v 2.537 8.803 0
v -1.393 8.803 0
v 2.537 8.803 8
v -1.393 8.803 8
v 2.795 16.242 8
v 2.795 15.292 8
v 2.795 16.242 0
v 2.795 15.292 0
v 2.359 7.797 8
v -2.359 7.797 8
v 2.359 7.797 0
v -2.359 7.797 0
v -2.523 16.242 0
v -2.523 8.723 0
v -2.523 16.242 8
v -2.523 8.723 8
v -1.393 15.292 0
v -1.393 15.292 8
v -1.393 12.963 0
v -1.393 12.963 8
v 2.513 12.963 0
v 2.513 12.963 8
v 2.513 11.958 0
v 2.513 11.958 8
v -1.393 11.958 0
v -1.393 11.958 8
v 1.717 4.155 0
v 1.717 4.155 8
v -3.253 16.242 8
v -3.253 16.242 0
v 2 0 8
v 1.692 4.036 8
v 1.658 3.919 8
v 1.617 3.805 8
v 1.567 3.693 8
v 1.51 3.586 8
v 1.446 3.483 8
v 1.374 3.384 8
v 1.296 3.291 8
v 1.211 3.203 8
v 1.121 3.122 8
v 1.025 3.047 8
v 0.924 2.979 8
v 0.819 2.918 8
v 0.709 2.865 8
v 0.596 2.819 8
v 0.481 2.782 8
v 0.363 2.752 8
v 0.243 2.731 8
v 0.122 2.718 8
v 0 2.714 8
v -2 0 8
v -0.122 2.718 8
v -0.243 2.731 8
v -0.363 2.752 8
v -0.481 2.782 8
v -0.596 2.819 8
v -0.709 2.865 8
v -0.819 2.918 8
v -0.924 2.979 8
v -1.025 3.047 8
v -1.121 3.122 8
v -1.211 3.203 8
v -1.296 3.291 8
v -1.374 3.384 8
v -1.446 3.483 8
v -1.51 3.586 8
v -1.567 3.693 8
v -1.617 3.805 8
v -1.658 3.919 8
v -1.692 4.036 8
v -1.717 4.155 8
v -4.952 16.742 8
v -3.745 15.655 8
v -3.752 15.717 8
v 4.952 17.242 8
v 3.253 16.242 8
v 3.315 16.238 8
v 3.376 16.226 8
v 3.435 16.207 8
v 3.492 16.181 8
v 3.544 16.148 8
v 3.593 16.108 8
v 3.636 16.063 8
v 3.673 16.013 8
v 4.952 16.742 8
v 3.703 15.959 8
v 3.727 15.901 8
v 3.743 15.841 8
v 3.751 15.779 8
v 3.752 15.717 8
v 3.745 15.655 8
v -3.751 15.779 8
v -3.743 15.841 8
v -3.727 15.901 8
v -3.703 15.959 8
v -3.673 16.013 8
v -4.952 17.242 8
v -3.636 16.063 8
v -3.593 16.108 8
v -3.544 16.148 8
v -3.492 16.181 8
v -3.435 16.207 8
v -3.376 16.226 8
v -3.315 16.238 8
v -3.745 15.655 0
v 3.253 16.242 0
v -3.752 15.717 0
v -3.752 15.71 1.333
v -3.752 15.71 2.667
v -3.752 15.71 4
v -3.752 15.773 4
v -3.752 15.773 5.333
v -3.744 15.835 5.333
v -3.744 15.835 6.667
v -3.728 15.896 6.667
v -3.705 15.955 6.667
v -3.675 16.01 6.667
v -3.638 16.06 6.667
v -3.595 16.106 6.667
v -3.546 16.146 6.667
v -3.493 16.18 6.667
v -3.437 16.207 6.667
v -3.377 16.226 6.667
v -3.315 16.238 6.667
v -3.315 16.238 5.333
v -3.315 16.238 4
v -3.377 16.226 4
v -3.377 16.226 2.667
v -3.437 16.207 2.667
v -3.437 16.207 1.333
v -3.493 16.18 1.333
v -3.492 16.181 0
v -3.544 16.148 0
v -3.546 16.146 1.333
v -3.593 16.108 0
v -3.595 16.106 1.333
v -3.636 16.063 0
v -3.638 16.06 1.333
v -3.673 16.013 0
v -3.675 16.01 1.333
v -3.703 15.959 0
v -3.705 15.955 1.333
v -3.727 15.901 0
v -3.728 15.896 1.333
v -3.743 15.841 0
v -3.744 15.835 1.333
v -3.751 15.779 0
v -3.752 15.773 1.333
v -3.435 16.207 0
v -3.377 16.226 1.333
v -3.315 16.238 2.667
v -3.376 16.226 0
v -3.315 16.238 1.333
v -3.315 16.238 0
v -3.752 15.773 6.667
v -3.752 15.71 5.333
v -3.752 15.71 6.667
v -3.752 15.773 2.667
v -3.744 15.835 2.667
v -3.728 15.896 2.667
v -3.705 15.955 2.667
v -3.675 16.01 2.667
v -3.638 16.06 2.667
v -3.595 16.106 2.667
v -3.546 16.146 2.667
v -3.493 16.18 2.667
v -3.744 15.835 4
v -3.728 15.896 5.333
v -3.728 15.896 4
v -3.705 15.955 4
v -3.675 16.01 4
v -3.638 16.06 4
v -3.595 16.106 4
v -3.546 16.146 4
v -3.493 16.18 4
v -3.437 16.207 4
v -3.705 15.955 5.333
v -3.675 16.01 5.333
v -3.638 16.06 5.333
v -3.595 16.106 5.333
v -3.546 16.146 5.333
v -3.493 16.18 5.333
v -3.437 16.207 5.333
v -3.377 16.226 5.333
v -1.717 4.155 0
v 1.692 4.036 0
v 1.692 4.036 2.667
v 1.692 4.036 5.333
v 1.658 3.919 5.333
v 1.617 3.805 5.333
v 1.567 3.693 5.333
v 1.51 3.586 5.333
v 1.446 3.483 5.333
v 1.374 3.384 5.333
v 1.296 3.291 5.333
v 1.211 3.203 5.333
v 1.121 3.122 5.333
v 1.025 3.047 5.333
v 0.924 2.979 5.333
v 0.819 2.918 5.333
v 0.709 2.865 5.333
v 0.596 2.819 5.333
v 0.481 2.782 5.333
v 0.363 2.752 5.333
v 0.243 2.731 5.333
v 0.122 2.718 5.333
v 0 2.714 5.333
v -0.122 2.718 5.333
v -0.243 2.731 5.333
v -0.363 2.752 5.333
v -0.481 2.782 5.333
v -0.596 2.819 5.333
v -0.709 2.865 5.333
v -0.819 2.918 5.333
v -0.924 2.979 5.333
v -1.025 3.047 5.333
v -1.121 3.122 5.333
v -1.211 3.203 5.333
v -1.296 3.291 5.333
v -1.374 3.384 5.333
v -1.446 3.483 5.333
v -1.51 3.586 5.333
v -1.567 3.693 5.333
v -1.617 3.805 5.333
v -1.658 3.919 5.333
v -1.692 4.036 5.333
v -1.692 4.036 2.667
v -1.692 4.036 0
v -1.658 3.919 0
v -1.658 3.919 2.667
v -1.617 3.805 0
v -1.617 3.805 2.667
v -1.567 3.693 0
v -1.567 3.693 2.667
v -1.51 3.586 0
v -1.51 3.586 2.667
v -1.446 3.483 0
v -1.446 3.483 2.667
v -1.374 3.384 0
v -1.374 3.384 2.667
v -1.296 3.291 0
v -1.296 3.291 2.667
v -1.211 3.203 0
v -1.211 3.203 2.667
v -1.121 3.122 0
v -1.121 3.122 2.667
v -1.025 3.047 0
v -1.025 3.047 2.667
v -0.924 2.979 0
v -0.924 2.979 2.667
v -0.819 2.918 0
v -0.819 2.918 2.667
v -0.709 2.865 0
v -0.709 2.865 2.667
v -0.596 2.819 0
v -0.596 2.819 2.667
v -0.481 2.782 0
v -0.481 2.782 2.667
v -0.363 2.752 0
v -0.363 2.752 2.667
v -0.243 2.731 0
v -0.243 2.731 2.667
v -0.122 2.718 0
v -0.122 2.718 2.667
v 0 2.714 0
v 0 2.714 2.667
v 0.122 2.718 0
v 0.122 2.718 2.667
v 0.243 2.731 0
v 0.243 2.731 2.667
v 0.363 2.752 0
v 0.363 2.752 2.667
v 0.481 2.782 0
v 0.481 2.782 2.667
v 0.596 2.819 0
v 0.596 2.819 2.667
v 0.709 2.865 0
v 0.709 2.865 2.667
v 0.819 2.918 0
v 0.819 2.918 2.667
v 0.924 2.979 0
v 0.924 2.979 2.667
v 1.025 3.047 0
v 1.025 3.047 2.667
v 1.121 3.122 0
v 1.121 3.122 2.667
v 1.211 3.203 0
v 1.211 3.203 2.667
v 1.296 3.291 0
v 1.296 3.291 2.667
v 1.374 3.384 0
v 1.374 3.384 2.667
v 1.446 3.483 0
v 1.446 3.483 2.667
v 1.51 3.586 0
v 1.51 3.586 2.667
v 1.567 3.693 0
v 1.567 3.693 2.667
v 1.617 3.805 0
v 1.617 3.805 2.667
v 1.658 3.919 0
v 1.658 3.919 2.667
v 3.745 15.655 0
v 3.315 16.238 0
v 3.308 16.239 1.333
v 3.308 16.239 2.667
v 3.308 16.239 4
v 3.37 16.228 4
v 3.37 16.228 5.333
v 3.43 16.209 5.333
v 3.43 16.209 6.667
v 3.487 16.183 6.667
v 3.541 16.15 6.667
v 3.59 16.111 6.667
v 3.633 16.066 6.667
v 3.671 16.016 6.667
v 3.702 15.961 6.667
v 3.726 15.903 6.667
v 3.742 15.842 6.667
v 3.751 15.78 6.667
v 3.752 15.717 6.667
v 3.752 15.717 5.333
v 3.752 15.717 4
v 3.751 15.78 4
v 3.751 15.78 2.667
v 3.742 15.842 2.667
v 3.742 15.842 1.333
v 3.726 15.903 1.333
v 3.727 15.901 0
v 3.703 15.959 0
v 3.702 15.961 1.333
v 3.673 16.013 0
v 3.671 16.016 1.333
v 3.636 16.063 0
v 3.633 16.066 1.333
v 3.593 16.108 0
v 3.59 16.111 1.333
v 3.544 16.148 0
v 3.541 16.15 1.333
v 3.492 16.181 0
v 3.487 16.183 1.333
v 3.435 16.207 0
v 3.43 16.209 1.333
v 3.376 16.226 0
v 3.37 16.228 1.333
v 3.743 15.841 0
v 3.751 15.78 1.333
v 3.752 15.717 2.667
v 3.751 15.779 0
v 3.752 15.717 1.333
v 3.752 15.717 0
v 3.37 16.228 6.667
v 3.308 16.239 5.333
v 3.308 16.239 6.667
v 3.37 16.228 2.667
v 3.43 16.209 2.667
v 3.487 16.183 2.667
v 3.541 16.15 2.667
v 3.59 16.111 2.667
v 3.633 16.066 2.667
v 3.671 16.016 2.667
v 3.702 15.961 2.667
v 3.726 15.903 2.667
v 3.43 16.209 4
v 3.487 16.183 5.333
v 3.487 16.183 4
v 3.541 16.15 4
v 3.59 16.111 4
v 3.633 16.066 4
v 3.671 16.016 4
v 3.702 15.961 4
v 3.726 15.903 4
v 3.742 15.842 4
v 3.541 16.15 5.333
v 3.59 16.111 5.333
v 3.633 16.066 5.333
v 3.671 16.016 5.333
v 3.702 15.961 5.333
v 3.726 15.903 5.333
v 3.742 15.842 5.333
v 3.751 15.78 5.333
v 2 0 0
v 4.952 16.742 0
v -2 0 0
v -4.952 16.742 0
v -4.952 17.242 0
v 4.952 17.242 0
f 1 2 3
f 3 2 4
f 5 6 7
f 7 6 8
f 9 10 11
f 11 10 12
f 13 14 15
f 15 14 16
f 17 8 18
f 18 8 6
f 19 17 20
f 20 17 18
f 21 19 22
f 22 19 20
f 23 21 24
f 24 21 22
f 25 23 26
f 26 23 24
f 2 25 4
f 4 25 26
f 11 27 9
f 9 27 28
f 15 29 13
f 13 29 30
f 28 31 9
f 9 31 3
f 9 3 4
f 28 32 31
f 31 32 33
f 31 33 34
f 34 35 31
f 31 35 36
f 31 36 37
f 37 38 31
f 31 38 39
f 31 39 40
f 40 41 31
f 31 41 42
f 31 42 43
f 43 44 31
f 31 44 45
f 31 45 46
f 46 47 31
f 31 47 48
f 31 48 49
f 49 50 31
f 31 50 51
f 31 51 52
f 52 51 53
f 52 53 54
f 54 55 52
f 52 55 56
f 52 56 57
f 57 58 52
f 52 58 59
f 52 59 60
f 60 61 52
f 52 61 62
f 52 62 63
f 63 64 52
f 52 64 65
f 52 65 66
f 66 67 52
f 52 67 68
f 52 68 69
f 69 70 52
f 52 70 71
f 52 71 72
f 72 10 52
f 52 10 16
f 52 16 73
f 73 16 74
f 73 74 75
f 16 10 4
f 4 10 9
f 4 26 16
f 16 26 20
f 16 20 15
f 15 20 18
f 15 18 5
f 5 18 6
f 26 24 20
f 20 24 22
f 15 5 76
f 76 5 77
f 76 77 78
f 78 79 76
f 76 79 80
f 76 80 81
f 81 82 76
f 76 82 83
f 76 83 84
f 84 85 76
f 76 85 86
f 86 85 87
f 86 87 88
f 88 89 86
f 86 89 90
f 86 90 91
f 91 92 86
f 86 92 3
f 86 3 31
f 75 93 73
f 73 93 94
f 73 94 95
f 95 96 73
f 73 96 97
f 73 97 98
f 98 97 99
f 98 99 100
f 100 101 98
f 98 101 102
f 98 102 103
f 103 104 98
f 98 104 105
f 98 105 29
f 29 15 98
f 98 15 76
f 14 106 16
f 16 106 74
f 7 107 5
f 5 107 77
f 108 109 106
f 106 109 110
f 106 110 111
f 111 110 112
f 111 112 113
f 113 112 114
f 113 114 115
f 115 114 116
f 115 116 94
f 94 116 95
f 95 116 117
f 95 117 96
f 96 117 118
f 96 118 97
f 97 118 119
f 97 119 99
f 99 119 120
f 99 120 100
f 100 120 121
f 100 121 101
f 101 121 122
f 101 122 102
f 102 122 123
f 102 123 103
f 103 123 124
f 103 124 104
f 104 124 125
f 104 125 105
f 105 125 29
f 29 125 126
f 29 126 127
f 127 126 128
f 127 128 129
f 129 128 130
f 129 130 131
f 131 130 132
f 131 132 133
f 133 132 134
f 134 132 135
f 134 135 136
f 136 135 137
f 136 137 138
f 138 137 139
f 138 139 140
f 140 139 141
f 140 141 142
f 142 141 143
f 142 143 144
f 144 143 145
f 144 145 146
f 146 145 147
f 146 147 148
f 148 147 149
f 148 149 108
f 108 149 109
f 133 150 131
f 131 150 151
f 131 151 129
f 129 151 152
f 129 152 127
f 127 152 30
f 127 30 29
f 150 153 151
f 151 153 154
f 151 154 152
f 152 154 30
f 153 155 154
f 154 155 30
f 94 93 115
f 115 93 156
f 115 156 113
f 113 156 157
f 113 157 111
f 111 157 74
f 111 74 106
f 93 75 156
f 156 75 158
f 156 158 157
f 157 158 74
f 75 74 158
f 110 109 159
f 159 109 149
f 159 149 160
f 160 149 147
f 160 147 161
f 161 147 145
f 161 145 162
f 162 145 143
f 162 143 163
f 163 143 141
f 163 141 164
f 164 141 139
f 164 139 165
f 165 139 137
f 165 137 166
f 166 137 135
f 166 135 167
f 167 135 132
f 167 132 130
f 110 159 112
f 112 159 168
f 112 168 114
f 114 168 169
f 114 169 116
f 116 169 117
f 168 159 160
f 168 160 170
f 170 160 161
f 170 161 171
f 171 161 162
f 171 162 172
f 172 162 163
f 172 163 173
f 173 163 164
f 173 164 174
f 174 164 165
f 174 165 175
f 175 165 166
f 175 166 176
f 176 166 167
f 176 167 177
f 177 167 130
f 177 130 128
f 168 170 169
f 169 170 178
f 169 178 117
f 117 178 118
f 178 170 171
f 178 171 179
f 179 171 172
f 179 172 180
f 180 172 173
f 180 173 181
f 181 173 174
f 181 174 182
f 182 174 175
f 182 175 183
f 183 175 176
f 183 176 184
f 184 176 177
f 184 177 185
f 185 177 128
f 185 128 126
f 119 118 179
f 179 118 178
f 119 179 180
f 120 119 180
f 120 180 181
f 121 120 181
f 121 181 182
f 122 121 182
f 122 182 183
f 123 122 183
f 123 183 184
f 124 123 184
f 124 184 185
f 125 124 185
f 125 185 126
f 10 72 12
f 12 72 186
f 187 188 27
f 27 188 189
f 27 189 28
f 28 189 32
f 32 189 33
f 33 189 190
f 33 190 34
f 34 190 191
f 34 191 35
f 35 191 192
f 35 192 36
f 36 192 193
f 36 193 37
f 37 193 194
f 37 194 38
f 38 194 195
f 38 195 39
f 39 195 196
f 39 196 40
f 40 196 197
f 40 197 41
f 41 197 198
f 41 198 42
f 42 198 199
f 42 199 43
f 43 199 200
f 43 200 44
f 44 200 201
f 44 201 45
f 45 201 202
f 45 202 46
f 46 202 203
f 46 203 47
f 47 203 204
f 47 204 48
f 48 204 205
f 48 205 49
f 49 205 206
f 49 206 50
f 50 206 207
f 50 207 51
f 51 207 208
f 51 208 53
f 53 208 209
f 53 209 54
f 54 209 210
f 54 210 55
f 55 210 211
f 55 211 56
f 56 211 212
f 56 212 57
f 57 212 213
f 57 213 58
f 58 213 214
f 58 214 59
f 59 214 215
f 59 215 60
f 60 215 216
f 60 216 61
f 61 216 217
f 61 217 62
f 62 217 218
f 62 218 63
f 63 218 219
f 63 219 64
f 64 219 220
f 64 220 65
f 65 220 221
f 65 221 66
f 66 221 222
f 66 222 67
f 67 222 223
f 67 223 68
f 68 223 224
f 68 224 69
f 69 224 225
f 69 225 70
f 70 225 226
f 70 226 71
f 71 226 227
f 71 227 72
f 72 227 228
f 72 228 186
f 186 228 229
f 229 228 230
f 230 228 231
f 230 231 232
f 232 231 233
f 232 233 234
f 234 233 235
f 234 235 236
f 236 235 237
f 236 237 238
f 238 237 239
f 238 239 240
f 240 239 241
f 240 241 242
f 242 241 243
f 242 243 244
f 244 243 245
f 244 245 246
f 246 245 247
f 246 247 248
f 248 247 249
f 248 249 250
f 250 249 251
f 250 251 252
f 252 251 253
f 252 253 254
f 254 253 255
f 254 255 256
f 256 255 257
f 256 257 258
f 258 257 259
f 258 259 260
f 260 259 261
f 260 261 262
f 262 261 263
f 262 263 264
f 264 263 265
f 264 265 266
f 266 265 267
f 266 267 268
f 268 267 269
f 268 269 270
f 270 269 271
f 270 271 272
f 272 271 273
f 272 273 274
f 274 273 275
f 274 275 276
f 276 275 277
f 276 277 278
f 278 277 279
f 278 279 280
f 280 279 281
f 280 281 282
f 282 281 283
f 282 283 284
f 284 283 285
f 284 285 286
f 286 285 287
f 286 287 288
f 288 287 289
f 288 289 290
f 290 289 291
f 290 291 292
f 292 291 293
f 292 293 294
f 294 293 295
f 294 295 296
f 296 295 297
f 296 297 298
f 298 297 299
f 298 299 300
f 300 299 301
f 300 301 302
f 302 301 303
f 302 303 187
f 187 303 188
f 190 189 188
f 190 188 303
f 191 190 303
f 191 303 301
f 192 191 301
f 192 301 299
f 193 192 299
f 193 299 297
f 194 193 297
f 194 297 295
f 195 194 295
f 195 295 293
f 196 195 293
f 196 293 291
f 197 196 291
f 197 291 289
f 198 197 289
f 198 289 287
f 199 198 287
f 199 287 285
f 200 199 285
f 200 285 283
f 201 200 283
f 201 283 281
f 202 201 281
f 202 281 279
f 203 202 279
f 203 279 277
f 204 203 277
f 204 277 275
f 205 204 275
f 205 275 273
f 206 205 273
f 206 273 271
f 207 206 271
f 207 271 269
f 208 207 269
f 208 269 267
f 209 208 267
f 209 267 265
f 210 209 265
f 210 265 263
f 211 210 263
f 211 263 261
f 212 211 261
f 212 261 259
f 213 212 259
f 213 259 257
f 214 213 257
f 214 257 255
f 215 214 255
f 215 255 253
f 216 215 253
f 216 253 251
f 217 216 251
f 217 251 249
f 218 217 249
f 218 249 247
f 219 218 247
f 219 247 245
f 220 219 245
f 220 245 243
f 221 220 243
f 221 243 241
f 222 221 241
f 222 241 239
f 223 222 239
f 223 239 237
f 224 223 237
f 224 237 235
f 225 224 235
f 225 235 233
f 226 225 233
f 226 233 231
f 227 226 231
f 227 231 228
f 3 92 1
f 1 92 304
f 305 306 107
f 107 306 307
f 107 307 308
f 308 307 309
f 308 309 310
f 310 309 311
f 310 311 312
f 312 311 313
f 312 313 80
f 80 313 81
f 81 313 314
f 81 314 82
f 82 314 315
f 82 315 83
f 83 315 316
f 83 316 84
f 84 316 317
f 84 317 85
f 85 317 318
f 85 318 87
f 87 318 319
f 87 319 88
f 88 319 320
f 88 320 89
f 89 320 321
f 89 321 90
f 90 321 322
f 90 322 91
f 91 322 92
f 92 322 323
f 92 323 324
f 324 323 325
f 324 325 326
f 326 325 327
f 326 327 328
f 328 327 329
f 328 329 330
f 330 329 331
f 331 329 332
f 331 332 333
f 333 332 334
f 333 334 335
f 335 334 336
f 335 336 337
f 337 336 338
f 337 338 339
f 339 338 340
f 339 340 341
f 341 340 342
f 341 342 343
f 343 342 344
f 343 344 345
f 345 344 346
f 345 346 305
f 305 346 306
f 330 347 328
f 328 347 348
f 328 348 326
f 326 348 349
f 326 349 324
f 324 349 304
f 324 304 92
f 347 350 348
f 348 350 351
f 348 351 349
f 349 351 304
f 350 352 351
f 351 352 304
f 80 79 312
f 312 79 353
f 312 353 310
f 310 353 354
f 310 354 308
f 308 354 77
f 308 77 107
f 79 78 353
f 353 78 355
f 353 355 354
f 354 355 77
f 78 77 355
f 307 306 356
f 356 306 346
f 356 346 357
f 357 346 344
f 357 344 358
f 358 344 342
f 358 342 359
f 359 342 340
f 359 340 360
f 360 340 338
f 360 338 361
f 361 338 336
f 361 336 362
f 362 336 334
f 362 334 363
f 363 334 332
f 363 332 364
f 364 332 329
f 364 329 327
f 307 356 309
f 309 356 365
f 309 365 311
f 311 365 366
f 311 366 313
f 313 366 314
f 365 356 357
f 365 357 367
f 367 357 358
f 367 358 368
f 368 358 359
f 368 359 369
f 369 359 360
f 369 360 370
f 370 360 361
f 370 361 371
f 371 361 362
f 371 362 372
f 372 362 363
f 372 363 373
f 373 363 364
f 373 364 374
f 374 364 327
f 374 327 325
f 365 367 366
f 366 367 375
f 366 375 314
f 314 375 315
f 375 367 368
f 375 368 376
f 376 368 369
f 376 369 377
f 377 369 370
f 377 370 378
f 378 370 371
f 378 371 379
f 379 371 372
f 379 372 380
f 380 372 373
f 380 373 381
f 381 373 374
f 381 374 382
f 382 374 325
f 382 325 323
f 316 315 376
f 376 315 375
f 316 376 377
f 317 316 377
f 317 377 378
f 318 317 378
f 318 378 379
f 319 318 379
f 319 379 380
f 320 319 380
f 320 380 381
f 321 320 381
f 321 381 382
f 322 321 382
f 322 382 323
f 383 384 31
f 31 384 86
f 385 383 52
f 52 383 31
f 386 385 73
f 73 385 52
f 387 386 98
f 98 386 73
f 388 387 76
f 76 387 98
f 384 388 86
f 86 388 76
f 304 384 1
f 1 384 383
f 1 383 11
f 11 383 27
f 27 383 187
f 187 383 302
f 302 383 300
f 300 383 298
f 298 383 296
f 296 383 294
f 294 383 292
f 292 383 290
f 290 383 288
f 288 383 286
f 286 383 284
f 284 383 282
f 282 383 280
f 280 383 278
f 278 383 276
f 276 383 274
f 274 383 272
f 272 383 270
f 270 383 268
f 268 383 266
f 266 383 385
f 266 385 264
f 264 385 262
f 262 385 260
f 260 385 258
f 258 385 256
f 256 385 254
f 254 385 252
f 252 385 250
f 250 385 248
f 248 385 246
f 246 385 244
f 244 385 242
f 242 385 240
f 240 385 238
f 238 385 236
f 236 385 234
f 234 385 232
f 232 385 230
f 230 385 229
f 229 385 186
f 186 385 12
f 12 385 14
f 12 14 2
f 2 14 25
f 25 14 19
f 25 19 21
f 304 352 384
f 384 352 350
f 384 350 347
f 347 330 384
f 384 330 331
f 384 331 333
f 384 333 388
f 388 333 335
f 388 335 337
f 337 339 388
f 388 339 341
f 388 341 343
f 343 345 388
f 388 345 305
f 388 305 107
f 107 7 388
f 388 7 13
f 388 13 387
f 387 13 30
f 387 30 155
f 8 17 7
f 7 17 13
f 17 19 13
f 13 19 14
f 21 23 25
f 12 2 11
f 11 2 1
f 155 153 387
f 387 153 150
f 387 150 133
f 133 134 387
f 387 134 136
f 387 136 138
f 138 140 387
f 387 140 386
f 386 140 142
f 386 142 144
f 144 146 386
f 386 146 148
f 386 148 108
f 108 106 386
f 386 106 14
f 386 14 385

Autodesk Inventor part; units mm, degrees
ref_plane "YZ Plane" through (0, 0, 0) normal (1, 0, 0) x (0, 1, 0)
ref_plane "XZ Plane" through (0, 0, 0) normal (0, 1, 0) x (-1, 0, 0)
ref_plane "XY Plane" through (0, 0, 0) normal (0, 0, 1) x (1, 0, 0)
sketch "Sketch1" plane through (0, 0, 0) normal (0, 0, 1) x (1, 0, 0)
  line L0 (0, 0) -> (0, 17.2417) construction
  line L1 (0, 17.2417) -> (-4.952, 17.2417)
  line L2 (-4.952, 17.2417) -> (-4.952, 16.7417)
  line L3 (-4.952, 16.7417) -> (-2, 0)
  line L4 (-2, 0) -> (0, 0)
  line L5 (0, 17.2417) -> (4.952, 17.2417)
  line L6 (4.952, 17.2417) -> (4.952, 16.7417)
  line L7 (4.952, 16.7417) -> (2, 0)
  line L8 (2, 0) -> (0, 0)
  line L9 (-3.2526, 16.2417) -> (0.4283, 16.2417)
  line L10 (0.4283, 16.2417) -> (3.2526, 16.2417)
  line L11 (3.745, 15.6549) -> (1.7172, 4.155)
  line L12 (-1.7172, 4.155) -> (-3.745, 15.6549)
  arc A0 (-3.2526, 16.2417) -> (-3.745, 15.6549) centre (-3.2526, 15.7417) ccw
  arc A1 (3.745, 15.6549) -> (3.2526, 16.2417) centre (3.2526, 15.7417) ccw
  arc A2 (-1.7172, 4.155) -> (1.7172, 4.155) centre (0, 4.4578) ccw
  line L13 (-3.3837, 16.2973) -> (4.7039, 16.2973) construction
  line L14 (4.7039, 16.2973) -> (4.7039, 6.2973) construction
  line L15 (4.7039, 6.2973) -> (-3.3837, 6.2973) construction
  line L16 (-3.3837, 6.2973) -> (-3.3837, 16.2973) construction
  line L17 (-2.5226, 7.7973) -> (-2.5226, 16.2973)
  line L18 (-2.5226, 16.2973) -> (2.795, 16.2973)
  line L19 (2.795, 16.2973) -> (2.795, 15.2917)
  line L20 (2.795, 15.2917) -> (-1.393, 15.2917)
  line L21 (-1.393, 15.2917) -> (-1.393, 12.9635)
  line L22 (-1.393, 12.9635) -> (2.5126, 12.9635)
  line L23 (2.5126, 12.9635) -> (2.5126, 11.9578)
  line L24 (2.5126, 11.9578) -> (-1.393, 11.9578)
  line L25 (-1.393, 11.9578) -> (-1.393, 8.803)
  line L26 (-1.393, 8.803) -> (2.795, 8.803)
  line L27 (2.795, 8.803) -> (2.795, 7.7973)
  line L28 (2.795, 7.7973) -> (-2.5226, 7.7973)
  point P0 (-3.8484, 16.2417)
  point P1 (3.8484, 16.2417)
  point P2 (0, -5.5838)
  dimension "d0" = 2
  dimension "d1" = 10
  dimension "d2" = 0.5
  dimension "d3" = 17
  dimension "d4" = 1
  dimension "d7" = 0.5
extrude "Extrusion1" add sketch "Sketch1" along normal blind 8 contours L5 L6 L7 L8 L4 L3 L2 L1 | L17 L18 L19 L10 L9 | L9 L10 L19 L20 L21 L22 L23 L24 L25 L26 L11 L28 L12 L17 | L12 L28 L17 | L11 L26 L27 L28
properties part number "MainBracketE"
